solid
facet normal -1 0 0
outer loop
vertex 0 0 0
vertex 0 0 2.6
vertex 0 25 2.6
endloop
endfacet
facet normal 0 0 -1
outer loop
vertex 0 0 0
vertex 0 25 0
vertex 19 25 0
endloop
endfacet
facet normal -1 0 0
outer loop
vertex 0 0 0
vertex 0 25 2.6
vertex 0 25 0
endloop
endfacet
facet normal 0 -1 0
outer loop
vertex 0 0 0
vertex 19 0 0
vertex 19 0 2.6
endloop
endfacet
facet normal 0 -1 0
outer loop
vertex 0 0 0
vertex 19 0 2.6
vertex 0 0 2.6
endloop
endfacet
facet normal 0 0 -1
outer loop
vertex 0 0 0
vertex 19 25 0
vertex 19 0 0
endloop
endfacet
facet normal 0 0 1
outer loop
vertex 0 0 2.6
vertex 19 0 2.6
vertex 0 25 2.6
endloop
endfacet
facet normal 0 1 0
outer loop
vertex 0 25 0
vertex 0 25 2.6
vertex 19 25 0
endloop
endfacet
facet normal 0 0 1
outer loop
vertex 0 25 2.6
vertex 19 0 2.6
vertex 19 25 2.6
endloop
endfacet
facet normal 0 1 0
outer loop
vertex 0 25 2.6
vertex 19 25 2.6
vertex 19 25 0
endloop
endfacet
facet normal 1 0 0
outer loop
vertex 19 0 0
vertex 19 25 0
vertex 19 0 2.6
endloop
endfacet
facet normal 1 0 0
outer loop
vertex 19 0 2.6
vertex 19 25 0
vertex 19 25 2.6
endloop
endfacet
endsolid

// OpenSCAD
/* Warning, this is a very basic generator with a lot of approximation 
input data : [MODULE, 6TW, 19x25x2.6mm, 82, , G, C04-00633G]
generated by com.zoubworld.electronics.cad.model3d.Basic
Date : Sun Feb 15 10:50:49 CET 2026
*/

//body
color("black")
translate([0,0,0])
cube([19.0,25.0,2.6], center=false);
